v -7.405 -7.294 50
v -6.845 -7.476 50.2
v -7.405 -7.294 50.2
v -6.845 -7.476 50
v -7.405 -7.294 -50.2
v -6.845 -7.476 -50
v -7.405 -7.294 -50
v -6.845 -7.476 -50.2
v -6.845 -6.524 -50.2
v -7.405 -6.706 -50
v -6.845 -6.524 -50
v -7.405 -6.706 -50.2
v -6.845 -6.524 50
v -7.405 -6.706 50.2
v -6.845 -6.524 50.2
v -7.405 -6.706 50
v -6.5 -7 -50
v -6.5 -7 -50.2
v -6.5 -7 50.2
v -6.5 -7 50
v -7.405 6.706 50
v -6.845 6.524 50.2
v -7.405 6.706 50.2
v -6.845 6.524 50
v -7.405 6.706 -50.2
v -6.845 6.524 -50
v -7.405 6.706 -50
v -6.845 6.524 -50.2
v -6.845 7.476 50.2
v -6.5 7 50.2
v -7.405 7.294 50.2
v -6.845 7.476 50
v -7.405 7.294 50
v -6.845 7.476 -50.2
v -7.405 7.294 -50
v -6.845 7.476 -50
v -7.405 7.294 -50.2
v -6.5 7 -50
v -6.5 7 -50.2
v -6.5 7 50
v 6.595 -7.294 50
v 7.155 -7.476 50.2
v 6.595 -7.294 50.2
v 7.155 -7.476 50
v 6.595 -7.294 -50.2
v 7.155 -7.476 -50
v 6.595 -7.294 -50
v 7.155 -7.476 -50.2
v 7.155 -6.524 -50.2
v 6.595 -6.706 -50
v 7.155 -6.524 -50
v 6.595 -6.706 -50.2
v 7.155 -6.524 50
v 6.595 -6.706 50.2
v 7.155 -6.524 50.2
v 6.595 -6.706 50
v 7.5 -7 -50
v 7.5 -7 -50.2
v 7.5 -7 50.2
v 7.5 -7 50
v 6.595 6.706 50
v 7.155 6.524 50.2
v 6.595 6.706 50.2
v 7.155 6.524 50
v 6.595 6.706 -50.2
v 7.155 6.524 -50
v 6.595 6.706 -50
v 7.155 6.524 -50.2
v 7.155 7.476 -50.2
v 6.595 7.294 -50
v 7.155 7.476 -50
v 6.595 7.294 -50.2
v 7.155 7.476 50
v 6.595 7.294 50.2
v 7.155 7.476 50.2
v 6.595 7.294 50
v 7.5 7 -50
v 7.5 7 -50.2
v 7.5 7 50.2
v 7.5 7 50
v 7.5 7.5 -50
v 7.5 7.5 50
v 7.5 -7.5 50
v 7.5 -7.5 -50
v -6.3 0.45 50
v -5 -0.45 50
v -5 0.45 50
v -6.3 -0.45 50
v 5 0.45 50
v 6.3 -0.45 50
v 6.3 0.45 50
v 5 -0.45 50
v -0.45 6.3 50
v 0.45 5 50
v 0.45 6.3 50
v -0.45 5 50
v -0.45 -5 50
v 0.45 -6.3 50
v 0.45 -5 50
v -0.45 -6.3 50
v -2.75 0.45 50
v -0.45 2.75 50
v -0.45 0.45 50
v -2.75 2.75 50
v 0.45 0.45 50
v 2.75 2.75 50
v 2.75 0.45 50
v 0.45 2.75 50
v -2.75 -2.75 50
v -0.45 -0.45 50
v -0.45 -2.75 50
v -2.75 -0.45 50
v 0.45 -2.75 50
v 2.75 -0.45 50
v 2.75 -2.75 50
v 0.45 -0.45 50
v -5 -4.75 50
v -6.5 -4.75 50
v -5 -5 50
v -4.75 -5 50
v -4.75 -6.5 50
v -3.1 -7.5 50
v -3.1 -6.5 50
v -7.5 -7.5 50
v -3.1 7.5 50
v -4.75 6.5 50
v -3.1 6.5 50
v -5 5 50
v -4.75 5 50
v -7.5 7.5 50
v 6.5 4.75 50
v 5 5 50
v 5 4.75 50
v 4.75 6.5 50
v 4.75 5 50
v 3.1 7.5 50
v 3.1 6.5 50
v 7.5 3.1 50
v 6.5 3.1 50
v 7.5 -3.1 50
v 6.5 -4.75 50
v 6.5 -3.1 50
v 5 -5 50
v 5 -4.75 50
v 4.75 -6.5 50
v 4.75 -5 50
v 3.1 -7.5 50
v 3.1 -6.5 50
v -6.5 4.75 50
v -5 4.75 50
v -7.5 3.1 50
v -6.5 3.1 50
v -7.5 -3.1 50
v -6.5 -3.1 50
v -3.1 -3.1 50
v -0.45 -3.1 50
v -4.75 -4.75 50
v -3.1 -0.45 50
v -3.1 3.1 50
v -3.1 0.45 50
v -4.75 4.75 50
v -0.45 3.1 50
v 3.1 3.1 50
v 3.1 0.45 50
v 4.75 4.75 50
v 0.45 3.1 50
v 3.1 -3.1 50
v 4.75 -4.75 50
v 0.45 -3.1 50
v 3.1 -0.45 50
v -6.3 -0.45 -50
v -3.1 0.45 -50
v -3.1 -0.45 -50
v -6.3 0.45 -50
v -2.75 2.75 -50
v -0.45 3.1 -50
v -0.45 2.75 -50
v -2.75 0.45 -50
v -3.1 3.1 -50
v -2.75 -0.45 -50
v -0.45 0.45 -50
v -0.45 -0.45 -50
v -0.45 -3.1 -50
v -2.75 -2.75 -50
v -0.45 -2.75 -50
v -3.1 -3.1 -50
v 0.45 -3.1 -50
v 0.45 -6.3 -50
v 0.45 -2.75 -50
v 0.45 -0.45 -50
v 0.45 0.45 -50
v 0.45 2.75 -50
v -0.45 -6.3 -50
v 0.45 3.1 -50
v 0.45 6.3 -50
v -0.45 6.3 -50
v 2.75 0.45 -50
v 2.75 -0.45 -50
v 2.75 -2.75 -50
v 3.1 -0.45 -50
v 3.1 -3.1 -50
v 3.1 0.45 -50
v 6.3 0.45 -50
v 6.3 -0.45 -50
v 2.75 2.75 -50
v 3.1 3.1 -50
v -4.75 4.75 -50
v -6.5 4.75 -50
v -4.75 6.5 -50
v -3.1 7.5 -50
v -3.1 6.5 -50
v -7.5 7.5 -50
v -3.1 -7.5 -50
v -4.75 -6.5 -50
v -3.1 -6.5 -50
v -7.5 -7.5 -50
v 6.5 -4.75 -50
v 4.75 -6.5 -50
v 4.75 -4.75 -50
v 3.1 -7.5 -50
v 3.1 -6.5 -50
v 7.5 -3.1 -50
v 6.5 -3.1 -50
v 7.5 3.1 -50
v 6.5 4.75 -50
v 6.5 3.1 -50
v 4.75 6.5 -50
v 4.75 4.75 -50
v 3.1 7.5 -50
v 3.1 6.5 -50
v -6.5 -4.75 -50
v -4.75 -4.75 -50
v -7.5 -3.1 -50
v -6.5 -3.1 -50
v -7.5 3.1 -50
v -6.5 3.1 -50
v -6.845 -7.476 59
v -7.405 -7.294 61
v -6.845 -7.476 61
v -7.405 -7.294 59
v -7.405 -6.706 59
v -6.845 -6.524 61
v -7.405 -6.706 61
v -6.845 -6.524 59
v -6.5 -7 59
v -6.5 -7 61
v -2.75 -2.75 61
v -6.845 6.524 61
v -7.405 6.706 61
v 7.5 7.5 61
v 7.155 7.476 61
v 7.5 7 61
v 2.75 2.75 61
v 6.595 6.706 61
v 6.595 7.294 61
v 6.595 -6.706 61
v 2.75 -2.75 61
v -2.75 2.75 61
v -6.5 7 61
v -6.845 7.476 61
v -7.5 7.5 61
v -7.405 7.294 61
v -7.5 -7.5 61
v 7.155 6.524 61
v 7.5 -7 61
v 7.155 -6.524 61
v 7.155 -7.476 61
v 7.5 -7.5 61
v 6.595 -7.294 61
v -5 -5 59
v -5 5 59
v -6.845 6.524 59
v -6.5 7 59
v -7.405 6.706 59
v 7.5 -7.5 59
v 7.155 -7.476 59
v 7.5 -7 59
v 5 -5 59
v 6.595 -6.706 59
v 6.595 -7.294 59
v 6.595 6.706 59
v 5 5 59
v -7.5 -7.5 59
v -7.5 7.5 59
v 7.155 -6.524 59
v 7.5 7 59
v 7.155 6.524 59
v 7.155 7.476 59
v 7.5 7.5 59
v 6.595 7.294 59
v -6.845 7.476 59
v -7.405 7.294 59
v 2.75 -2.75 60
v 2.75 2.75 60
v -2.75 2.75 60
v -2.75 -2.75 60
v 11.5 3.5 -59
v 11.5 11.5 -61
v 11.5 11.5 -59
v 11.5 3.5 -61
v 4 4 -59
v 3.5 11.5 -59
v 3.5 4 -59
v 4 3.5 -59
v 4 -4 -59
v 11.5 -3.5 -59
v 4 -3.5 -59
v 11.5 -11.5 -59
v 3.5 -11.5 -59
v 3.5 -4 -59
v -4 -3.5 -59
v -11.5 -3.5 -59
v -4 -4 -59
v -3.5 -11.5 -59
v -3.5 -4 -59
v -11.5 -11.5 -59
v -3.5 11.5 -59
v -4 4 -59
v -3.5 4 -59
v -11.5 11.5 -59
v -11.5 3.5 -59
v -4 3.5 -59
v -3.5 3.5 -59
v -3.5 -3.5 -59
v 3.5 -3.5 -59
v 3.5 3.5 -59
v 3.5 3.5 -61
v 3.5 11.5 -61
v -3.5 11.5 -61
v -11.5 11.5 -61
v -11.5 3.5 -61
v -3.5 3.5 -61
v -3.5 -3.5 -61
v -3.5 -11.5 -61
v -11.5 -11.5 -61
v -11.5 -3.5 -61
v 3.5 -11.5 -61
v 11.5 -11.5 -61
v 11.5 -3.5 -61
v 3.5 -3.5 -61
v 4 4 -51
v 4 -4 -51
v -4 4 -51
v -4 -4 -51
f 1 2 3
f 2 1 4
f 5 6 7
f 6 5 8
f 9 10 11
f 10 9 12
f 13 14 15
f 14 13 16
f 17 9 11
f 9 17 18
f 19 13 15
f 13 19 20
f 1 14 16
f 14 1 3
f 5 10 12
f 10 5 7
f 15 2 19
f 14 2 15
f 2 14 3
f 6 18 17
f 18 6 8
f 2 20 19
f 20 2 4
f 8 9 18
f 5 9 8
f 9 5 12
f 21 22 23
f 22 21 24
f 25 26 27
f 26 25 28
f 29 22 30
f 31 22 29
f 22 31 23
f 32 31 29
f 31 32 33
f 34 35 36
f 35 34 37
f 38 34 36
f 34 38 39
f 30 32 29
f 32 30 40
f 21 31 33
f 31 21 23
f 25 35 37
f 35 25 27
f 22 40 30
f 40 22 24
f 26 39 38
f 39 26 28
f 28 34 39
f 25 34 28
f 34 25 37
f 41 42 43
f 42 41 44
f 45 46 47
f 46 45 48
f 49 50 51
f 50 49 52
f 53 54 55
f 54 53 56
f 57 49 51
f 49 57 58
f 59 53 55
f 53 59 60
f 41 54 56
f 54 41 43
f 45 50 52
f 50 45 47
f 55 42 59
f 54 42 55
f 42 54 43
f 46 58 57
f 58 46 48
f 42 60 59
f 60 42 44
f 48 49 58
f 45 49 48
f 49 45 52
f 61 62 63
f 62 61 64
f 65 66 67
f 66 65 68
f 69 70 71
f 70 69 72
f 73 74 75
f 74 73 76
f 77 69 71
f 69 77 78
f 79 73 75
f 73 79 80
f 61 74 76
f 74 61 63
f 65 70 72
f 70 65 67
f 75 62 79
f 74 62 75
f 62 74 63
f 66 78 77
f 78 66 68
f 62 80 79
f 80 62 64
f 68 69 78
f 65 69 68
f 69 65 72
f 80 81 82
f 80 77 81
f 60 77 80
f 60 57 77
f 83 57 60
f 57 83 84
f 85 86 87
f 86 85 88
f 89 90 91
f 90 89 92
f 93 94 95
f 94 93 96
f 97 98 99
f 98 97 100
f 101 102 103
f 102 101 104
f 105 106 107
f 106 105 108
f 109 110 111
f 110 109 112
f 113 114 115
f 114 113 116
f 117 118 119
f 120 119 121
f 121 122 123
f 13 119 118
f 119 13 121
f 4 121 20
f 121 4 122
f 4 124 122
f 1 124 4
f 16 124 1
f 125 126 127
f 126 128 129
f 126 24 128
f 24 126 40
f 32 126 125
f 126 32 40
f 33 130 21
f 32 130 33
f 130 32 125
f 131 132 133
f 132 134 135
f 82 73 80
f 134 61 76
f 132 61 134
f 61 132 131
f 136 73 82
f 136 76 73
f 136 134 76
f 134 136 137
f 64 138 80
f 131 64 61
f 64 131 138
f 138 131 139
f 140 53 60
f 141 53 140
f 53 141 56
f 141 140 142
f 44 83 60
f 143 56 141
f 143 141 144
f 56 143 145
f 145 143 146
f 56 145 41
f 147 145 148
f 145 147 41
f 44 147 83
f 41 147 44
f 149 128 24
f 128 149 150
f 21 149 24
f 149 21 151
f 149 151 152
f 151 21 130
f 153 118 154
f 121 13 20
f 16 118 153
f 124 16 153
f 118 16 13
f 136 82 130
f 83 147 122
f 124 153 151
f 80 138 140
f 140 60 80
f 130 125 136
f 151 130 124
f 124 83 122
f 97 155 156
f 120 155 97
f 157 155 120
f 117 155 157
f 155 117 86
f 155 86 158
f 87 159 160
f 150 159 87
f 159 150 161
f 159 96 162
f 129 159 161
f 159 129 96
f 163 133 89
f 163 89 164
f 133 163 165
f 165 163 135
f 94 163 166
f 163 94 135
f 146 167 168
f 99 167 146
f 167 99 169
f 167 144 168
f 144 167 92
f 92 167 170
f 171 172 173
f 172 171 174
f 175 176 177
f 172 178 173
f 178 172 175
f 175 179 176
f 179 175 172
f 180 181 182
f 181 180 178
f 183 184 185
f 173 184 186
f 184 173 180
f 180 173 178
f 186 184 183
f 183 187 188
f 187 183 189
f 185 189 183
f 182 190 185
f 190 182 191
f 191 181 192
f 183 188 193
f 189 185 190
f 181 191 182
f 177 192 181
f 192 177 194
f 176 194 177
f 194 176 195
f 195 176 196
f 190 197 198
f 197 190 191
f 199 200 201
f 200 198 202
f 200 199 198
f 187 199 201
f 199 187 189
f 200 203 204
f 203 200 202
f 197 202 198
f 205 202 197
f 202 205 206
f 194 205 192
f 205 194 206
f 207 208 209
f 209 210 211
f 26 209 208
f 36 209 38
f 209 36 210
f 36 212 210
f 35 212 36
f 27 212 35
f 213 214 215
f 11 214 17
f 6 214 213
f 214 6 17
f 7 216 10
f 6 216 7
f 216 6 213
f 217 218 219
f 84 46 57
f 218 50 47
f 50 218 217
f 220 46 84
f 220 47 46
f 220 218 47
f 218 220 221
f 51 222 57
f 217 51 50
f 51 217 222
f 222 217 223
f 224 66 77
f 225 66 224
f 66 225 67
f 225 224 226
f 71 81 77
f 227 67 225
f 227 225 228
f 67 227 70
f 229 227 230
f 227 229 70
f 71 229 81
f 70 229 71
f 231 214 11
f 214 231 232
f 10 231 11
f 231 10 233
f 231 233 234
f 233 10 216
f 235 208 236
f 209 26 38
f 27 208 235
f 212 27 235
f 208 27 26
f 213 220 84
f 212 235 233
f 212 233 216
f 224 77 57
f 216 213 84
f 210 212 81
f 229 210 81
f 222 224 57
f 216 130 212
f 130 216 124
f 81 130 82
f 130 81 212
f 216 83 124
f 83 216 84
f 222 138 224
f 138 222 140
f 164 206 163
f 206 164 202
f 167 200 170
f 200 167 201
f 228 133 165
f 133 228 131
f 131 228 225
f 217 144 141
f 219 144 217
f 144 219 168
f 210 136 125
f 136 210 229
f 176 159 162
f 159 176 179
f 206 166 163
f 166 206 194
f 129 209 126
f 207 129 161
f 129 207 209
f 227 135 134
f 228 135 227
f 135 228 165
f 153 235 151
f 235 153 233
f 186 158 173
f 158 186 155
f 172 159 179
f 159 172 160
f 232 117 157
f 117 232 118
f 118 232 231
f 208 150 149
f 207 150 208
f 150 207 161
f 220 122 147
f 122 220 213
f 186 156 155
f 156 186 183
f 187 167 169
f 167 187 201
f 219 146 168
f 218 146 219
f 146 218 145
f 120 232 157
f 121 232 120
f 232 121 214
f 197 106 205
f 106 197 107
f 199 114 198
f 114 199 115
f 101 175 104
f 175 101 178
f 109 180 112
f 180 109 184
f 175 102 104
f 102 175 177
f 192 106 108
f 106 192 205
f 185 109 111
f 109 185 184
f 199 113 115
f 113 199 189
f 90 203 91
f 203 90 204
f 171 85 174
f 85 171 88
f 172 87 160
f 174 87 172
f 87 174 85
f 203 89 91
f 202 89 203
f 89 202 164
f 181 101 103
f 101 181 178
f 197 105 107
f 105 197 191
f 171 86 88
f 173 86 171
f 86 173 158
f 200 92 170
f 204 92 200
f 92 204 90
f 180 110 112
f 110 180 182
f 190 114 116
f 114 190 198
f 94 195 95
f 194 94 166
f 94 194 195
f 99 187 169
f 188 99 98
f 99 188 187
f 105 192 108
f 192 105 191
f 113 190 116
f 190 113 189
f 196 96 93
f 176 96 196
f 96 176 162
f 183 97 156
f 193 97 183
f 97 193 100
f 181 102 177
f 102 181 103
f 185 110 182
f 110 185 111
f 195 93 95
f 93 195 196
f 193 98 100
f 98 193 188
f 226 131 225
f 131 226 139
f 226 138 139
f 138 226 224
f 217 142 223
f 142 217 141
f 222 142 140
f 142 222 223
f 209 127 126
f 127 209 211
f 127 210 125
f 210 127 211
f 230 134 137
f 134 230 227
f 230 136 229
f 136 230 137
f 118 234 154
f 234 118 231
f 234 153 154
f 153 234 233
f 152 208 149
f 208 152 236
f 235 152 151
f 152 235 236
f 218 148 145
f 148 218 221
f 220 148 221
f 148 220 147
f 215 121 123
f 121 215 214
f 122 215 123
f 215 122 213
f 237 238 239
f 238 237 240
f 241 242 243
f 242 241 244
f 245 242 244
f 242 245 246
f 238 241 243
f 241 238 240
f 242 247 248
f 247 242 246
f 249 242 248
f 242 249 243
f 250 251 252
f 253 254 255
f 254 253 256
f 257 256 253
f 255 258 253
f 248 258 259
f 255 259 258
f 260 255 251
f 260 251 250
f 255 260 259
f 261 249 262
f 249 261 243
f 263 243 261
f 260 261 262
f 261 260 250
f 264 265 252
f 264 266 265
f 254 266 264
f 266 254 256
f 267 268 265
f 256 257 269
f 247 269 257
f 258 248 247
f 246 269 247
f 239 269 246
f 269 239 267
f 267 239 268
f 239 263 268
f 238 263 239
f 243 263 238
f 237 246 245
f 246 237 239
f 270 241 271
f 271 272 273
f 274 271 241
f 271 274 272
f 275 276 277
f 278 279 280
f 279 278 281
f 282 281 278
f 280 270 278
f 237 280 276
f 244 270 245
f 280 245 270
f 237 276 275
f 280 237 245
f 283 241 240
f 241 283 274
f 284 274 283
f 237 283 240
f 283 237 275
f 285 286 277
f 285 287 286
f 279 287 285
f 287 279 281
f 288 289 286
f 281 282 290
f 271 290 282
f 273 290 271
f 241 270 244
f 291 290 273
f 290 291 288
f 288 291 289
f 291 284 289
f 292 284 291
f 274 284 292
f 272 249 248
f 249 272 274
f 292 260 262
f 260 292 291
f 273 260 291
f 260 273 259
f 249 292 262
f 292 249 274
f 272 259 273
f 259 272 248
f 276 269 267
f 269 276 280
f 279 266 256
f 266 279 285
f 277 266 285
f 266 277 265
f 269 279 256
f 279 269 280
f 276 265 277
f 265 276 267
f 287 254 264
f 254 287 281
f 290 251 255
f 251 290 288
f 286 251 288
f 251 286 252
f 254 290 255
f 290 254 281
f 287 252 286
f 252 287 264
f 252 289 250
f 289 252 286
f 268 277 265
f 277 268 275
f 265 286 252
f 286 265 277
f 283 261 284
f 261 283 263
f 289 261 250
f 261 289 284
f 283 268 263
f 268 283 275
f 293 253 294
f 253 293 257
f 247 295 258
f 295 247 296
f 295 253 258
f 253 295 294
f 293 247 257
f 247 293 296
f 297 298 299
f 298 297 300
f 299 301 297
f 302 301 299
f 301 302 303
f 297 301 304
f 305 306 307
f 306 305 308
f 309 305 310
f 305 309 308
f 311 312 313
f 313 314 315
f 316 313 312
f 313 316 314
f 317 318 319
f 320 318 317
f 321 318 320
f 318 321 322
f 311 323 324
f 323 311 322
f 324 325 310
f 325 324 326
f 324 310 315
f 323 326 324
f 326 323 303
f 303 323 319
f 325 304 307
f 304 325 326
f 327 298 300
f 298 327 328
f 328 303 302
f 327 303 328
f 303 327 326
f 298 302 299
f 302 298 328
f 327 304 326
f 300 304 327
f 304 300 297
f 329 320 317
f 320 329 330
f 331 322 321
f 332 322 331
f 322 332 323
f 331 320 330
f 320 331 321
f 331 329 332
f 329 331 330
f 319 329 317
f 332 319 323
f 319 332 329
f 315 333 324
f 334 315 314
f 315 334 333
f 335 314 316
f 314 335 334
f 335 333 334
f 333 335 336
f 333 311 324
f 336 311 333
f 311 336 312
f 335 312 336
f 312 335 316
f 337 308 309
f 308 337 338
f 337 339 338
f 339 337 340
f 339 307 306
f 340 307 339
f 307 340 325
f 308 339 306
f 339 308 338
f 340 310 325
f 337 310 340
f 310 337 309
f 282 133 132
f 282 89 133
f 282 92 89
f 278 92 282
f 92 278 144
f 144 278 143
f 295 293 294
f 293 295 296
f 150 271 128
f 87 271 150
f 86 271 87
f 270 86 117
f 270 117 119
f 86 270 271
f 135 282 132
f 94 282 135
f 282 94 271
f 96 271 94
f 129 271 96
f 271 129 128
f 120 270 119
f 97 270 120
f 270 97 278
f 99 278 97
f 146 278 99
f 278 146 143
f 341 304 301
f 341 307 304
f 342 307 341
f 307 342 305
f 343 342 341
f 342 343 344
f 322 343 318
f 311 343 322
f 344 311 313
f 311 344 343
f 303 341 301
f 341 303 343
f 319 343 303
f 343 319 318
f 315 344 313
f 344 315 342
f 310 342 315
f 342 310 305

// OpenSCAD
// Parameters
profile_size = 15; //[7.5:30:0.1]
length = 100; //[50:200:1]
center_bore_diameter = 3.3; //[1.65:6.6:0.05]
inner_chamber_square = 5.5; //[2.75:11:0.05]
t_slot_opening_width = 6.2; //[3.1:12.4:0.05]
t_slot_internal_channel_width = 9.5; //[4.75:19:0.05]
t_slot_lip_thickness = 1; //[0.5:2:0.05]
internal_spar_thickness = 0.9; //[0.45:1.8:0.05]
corner_fillet_radius = 0.5; //[0:1.5:0.05]
eps = 0.2; //[0.05:0.5:0.05]
outer_wall = 1.2; //[0.6:2.4:0.05]
t_slot_depth = 4.2; //[2.1:8.4:0.05]

// Extrusion - complete detailed geometry
module extrusion() {
  color("Silver") {
    difference() {
      // Outer block with corner fillets
      union() {
        cube([profile_size, profile_size, length], center=true);
        for (x = [-1, 1], y = [-1, 1]) {
          translate([x * (profile_size/2 - corner_fillet_radius), y * (profile_size/2 - corner_fillet_radius), 0])
            cylinder(r=corner_fillet_radius, h=length + 2*eps, center=true);
        }
      }
      // Inner square chamber
      translate([0, 0, 0])
        cube([inner_chamber_square, inner_chamber_square, length + 2*eps], center=true);
      // Central through-bore
      translate([0, 0, 0])
        cylinder(r=center_bore_diameter/2, h=length + 2*eps, center=true);
      // T-slots
      for (i = [0:3]) {
        rotate([0, 0, i*90]) {
          translate([profile_size/2 - (t_slot_depth + eps)/2, 0, 0]) {
            cube([t_slot_depth + eps, t_slot_internal_channel_width, length + 2*eps], center=true);
            cube([t_slot_depth + eps, t_slot_opening_width, length + 2*eps], center=true);
          }
        }
      }
    }
    // Internal spars
    union() {
      cube([profile_size - 2*outer_wall, internal_spar_thickness, length], center=true);
      cube([internal_spar_thickness, profile_size - 2*outer_wall, length], center=true);
    }
    // T-slot lips
    for (i = [0:3]) {
      rotate([0, 0, i*90]) {
        translate([profile_size/2 - t_slot_lip_thickness/2, t_slot_opening_width/2 + ((t_slot_internal_channel_width - t_slot_opening_width)/2)/2, 0])
          cube([t_slot_lip_thickness, (t_slot_internal_channel_width - t_slot_opening_width)/2, length], center=true);
        translate([profile_size/2 - t_slot_lip_thickness/2, -(t_slot_opening_width/2 + ((t_slot_internal_channel_width - t_slot_opening_width)/2)/2), 0])
          cube([t_slot_lip_thickness, (t_slot_internal_channel_width - t_slot_opening_width)/2, length], center=true);
      }
    }
  }
}

// Corner - complete detailed geometry
module corner() {
  color("DimGray") {
    // Simple corner block
    cube([10, 10, 10], center=true);
  }
}

// Box Corner Profile Section - complete detailed geometry
module box_corner_profile_section() {
  color("Black") {
    // Simple box corner profile
    cube([8, 8, 8], center=true);
  }
}

// Extrusion Cross Section - complete detailed geometry
module extrusion_cross_section() {
  color("Silver") {
    // Cross section of extrusion
    difference() {
      cube([profile_size, profile_size, 2], center=true);
      for (x = [-1, 1], y = [-1, 1]) {
        translate([x * (profile_size/2 - corner_fillet_radius), y * (profile_size/2 - corner_fillet_radius), 0])
          cylinder(r=corner_fillet_radius, h=2, center=true);
      }
      translate([0, 0, 0])
        cube([inner_chamber_square, inner_chamber_square, 2], center=true);
      translate([0, 0, 0])
        cylinder(r=center_bore_diameter/2, h=2, center=true);
    }
  }
}

// Box Corner Profile Sections - complete detailed geometry
module box_corner_profile_sections() {
  color("Black") {
    // Multiple box corner profiles
    for (i = [0:3]) {
      rotate([0, 0, i*90]) {
        translate([profile_size/2, profile_size/2, 0])
          cube([8, 8, 2], center=true);
      }
    }
  }
}

// Assembly
module assembly() {
  extrusion();
  translate([0, 0, length/2 + 5]) corner();
  translate([0, 0, -length/2 - 5]) box_corner_profile_section();
  translate([0, 0, length/2 + 10]) extrusion_cross_section();
  translate([0, 0, -length/2 - 10]) box_corner_profile_sections();
}

assembly();
